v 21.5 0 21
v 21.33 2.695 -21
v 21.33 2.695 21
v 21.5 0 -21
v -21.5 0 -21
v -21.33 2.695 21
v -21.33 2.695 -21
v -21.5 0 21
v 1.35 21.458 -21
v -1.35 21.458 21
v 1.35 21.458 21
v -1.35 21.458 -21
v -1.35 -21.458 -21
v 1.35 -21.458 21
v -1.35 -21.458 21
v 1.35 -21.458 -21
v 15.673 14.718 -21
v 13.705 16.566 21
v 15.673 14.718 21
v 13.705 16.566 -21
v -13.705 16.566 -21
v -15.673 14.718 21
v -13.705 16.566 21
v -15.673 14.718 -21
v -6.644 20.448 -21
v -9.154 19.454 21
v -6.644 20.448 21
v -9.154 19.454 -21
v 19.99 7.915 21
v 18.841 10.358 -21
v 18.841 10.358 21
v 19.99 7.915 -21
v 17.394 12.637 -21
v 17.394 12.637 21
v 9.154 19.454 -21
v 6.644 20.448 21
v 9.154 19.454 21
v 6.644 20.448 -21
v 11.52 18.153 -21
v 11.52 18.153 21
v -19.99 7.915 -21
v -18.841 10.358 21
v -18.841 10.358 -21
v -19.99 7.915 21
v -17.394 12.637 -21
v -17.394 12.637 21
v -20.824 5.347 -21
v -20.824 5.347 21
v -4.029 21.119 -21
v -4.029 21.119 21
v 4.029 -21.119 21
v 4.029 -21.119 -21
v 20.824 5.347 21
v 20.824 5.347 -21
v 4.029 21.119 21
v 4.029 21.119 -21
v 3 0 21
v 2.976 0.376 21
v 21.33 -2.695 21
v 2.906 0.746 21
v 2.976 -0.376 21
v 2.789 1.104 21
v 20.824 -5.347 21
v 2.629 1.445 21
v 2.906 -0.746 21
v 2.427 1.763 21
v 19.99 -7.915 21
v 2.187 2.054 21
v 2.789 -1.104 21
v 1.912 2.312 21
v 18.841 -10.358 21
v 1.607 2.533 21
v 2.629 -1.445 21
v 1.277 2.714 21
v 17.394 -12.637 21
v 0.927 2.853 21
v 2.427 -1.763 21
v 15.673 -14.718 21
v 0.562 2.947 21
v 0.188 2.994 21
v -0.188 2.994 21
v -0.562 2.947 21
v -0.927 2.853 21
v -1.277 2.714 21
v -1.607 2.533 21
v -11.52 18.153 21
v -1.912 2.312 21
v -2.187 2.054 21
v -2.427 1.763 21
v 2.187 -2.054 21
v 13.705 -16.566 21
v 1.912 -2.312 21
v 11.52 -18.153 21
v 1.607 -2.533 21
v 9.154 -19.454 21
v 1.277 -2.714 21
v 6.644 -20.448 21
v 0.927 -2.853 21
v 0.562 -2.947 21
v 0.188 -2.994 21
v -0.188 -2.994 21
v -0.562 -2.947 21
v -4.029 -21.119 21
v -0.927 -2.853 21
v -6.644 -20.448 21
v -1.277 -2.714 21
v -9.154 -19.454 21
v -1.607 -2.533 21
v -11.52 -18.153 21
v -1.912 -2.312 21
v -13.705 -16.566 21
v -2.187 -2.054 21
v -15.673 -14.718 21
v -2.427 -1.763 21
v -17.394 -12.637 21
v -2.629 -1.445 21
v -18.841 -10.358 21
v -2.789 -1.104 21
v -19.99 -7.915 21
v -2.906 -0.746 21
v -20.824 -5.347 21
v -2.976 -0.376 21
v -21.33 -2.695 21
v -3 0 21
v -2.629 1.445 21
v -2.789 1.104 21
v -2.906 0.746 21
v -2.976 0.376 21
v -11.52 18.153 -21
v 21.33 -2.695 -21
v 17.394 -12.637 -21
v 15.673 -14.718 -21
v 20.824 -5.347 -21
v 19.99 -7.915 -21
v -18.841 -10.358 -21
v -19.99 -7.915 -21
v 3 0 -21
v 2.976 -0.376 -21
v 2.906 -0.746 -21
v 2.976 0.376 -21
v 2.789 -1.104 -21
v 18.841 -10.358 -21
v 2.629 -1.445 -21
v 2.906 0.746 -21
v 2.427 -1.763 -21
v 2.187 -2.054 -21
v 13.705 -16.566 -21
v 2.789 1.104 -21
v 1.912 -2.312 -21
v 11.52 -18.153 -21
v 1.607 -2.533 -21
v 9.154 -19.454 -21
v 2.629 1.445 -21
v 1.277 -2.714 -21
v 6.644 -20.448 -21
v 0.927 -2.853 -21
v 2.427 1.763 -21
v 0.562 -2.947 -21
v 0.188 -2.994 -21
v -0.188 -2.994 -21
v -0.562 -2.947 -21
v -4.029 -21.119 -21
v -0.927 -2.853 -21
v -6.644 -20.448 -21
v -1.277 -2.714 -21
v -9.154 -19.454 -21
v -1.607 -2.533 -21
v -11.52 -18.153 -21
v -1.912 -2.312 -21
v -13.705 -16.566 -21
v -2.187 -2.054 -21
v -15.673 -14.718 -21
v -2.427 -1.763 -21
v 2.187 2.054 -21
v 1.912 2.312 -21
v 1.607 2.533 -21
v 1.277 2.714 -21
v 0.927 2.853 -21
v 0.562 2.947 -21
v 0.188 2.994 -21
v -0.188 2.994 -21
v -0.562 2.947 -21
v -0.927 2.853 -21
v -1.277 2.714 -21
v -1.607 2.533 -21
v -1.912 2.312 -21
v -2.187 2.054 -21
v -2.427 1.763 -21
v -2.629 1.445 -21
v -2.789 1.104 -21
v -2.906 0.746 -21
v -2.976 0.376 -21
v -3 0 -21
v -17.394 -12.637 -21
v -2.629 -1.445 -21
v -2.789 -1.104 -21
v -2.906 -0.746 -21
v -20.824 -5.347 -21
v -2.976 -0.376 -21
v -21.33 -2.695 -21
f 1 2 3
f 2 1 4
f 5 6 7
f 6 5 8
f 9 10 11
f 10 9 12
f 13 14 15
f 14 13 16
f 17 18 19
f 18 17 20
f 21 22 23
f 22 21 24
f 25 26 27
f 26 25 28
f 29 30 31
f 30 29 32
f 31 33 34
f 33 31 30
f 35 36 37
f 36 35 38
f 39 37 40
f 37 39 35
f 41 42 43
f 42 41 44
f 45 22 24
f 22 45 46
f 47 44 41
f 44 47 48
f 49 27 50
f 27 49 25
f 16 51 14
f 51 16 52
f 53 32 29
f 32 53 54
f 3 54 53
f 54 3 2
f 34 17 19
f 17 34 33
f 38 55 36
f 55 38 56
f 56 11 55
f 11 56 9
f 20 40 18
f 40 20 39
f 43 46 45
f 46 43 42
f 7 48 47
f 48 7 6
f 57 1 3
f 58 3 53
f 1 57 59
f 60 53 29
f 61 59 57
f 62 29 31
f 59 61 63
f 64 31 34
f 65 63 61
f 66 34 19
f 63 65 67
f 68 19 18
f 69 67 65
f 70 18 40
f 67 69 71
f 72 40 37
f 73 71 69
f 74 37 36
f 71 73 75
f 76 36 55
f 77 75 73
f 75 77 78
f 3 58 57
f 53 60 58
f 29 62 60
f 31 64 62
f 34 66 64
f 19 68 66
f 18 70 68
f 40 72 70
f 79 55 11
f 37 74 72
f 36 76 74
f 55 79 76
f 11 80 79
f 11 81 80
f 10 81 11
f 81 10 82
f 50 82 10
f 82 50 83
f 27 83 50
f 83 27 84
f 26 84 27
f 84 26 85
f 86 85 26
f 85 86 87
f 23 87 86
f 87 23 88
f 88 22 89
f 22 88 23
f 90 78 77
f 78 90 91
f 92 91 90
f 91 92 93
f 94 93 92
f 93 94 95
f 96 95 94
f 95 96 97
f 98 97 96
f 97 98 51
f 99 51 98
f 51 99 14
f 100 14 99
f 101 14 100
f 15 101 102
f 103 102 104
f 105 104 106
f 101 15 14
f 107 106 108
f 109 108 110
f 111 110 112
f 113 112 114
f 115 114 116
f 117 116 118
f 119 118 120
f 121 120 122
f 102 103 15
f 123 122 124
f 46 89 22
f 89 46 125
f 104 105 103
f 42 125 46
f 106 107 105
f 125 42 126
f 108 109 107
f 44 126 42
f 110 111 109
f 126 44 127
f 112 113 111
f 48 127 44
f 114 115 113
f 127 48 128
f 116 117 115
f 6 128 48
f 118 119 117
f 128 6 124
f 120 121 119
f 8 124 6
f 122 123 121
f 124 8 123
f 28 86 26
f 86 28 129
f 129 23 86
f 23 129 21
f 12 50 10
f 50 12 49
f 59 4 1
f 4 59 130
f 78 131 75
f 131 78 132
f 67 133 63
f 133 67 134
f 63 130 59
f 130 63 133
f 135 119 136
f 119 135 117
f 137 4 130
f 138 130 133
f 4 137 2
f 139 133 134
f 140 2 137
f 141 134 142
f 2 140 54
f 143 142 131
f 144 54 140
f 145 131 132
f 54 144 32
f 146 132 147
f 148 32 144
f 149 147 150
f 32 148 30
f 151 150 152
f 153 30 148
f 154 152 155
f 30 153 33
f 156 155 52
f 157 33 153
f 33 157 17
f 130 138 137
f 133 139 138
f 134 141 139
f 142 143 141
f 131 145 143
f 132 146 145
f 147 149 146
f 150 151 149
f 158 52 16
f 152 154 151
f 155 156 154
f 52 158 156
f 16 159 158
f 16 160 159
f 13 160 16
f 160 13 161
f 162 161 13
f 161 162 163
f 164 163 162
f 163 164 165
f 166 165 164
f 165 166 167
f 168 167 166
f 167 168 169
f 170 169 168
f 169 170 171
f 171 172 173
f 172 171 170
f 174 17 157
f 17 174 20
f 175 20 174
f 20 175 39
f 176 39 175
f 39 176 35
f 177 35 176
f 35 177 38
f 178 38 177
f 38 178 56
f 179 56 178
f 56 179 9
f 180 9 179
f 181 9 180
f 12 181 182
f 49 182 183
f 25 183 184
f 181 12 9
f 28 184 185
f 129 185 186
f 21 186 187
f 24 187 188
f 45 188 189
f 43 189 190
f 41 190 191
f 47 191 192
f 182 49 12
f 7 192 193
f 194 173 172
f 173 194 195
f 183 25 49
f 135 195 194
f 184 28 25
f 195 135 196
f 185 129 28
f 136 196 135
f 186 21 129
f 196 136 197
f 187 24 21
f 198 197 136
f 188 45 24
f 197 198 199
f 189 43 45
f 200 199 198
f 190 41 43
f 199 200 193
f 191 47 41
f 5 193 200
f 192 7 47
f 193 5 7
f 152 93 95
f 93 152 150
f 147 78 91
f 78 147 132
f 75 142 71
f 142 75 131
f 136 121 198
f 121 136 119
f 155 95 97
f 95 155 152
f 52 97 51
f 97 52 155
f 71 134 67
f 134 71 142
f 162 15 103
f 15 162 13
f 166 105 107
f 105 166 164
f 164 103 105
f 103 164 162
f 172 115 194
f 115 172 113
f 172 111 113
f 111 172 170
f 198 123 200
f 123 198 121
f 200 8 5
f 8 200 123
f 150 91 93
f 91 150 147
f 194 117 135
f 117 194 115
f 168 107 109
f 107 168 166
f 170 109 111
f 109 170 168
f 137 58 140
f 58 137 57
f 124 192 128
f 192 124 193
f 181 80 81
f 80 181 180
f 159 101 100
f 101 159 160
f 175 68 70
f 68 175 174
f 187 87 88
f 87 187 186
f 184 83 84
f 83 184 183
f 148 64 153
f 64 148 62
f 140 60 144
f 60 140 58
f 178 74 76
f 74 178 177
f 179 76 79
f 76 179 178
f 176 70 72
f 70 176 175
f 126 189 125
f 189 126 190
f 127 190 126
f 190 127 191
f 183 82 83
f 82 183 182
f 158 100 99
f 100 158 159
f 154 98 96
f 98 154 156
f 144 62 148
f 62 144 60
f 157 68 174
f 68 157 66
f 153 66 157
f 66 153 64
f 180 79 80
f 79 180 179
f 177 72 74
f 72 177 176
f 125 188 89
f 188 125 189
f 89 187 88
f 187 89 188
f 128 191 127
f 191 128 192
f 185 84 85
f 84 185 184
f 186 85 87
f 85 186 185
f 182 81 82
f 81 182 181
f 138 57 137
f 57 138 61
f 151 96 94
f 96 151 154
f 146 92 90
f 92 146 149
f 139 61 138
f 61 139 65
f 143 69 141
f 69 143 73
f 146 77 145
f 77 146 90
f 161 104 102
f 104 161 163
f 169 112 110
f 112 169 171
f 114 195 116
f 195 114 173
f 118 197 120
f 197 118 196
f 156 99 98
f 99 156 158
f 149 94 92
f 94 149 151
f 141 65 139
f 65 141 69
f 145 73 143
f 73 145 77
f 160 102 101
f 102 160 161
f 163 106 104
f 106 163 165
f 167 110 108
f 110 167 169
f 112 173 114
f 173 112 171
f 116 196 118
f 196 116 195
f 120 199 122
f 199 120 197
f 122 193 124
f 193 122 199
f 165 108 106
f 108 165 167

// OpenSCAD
$fn = 50;


difference() {
	union() {
		translate(v = [0, 0, -21.0000000000]) {
			cylinder(h = 42, r = 21.5000000000);
		}
	}
	union() {
		translate(v = [0, 0, -100.0000000000]) {
			cylinder(h = 200, r = 3);
		}
	}
}
